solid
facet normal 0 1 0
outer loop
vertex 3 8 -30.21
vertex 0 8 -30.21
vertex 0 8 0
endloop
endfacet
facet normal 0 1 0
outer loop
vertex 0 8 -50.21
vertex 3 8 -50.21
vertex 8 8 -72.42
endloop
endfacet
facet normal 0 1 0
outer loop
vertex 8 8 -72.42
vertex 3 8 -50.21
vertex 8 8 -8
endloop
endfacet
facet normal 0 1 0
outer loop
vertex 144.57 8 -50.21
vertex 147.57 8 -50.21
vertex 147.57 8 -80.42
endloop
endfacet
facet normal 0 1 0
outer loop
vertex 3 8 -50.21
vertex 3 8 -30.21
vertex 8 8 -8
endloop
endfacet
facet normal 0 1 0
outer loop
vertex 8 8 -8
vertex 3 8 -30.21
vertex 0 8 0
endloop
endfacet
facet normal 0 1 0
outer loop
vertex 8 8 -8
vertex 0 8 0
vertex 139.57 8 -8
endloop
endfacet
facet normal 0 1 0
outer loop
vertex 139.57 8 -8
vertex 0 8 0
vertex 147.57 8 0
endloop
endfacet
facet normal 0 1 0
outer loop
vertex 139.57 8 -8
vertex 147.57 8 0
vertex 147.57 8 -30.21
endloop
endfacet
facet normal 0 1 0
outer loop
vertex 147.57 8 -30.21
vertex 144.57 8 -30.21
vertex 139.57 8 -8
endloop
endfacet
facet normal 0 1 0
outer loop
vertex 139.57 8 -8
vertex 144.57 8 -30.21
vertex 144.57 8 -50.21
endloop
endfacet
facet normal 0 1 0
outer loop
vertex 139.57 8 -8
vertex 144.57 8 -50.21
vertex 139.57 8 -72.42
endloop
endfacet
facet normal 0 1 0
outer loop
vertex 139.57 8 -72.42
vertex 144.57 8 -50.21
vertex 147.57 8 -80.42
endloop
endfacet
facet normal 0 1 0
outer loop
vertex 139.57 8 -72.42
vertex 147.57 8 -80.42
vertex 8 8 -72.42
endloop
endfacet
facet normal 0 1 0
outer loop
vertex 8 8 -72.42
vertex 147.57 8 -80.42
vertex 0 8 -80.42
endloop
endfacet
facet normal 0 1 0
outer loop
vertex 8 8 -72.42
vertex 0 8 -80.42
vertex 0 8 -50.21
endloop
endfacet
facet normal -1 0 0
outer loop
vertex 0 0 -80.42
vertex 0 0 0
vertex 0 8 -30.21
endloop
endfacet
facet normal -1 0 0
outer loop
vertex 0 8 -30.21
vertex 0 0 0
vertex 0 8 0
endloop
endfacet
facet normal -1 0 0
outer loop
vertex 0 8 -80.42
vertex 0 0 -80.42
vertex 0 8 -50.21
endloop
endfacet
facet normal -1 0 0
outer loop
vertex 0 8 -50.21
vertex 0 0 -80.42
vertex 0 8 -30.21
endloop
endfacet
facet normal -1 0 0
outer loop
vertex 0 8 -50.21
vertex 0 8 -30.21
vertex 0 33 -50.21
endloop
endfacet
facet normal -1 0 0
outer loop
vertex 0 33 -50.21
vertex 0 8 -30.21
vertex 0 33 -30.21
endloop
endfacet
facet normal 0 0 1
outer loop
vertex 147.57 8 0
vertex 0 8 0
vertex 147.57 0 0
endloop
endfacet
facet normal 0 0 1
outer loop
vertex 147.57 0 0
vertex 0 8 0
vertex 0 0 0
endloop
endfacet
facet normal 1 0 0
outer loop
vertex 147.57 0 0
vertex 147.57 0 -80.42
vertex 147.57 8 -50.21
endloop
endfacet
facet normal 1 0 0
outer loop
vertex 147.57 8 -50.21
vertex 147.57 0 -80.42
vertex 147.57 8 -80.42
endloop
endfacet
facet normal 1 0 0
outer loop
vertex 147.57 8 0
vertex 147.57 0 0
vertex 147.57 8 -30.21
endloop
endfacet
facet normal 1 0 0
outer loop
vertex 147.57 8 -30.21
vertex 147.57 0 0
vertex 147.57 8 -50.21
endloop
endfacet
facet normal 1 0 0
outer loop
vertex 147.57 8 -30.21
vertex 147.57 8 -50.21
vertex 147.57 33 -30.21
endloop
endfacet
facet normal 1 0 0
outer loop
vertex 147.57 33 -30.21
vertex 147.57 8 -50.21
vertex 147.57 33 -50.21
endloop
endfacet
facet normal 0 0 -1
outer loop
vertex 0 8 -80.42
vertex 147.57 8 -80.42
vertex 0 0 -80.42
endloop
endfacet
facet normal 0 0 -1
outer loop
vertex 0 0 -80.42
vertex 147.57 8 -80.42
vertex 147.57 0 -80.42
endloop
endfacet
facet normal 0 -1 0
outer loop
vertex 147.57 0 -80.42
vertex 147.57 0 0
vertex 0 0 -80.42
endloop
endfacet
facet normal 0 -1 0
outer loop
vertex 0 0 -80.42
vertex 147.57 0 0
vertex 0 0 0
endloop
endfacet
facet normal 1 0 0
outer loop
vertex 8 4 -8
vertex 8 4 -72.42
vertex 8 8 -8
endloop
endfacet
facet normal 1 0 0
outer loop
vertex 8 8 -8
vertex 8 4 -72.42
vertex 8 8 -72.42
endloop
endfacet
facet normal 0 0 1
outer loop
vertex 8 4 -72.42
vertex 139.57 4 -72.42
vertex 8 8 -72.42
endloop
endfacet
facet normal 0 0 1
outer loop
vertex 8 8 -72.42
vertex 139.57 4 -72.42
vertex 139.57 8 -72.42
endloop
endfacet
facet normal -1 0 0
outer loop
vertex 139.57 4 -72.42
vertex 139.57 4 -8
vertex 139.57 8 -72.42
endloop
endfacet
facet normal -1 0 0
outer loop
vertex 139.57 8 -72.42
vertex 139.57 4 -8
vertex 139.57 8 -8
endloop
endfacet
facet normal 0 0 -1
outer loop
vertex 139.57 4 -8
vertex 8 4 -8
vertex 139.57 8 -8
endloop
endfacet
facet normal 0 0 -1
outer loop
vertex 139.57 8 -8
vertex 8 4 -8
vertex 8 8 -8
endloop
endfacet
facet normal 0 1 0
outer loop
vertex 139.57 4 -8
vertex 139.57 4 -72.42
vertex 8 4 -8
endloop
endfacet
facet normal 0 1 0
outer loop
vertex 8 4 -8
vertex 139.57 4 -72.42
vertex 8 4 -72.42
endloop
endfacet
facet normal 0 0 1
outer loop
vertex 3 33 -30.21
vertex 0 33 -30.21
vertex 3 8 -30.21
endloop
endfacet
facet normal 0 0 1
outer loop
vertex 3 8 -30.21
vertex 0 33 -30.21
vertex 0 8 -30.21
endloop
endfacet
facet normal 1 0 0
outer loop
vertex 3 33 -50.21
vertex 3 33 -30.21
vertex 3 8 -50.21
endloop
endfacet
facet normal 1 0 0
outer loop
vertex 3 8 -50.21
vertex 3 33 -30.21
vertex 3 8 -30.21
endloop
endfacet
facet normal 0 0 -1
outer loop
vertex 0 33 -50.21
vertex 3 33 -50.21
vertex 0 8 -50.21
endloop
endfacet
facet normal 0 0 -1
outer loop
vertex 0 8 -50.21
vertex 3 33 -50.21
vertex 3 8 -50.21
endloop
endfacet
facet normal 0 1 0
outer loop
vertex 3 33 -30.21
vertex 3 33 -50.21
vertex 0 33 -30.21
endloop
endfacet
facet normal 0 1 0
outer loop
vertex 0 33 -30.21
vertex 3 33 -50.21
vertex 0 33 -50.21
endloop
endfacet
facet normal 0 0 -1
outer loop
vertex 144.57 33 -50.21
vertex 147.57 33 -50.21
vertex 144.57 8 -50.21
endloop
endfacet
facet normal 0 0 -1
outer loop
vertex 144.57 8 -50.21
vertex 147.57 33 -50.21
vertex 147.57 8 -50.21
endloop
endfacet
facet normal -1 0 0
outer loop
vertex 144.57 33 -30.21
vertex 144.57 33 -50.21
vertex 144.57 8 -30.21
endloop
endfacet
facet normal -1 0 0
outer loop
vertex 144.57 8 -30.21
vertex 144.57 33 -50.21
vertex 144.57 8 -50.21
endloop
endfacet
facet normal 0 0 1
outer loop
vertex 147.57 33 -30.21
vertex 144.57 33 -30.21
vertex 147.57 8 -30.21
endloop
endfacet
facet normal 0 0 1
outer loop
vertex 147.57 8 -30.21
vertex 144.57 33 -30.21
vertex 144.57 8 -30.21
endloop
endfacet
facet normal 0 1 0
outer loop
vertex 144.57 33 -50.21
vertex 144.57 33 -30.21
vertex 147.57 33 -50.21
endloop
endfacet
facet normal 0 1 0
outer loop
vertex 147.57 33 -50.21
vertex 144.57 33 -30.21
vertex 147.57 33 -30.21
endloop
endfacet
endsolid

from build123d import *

# Parameters (mm, degrees)
SKETCH1_W           = 147.57
SKETCH1_H           = 80.42
BOSS_EXTRUDE1_DEPTH = 8
SKETCH2_W           = 131.57
SKETCH2_H           = 64.42
CUT_EXTRUDE1_DEPTH  = 4
SKETCH3_W           = 3
SKETCH3_H           = 20
BOSS_EXTRUDE2_DEPTH = 25


with BuildPart() as part:
    # Sketch1 → Boss-Extrude1 (new body)
    with BuildSketch(Plane(origin=(0, 0, 0), x_dir=(1, 0, 0), z_dir=(0, 1, 0))):
        with Locations((73.785, 40.21)):
            Rectangle(SKETCH1_W, SKETCH1_H)
    extrude(amount=BOSS_EXTRUDE1_DEPTH)

    # Sketch2 → Cut-Extrude1 (cut)
    with BuildSketch(Plane(origin=(0, 8, 0), x_dir=(1, 0, 0), z_dir=(0, 1, 0))):
        with Locations((73.785, 40.21)):
            Rectangle(SKETCH2_W, SKETCH2_H)
    extrude(amount=-CUT_EXTRUDE1_DEPTH, mode=Mode.SUBTRACT)

    # Sketch3 → Boss-Extrude2 (add)
    with BuildSketch(Plane(origin=(0, 8, 0), x_dir=(1, 0, 0), z_dir=(0, 1, 0))):
        with Locations((1.5, 40.21)):
            Rectangle(SKETCH3_W, SKETCH3_H)
    boss_extrude2 = extrude(amount=BOSS_EXTRUDE2_DEPTH)

    # Mirror1: Boss-Extrude2 across plane
    add(boss_extrude2.mirror(Plane.ZY.offset(-73.785)))


solid = part.part
